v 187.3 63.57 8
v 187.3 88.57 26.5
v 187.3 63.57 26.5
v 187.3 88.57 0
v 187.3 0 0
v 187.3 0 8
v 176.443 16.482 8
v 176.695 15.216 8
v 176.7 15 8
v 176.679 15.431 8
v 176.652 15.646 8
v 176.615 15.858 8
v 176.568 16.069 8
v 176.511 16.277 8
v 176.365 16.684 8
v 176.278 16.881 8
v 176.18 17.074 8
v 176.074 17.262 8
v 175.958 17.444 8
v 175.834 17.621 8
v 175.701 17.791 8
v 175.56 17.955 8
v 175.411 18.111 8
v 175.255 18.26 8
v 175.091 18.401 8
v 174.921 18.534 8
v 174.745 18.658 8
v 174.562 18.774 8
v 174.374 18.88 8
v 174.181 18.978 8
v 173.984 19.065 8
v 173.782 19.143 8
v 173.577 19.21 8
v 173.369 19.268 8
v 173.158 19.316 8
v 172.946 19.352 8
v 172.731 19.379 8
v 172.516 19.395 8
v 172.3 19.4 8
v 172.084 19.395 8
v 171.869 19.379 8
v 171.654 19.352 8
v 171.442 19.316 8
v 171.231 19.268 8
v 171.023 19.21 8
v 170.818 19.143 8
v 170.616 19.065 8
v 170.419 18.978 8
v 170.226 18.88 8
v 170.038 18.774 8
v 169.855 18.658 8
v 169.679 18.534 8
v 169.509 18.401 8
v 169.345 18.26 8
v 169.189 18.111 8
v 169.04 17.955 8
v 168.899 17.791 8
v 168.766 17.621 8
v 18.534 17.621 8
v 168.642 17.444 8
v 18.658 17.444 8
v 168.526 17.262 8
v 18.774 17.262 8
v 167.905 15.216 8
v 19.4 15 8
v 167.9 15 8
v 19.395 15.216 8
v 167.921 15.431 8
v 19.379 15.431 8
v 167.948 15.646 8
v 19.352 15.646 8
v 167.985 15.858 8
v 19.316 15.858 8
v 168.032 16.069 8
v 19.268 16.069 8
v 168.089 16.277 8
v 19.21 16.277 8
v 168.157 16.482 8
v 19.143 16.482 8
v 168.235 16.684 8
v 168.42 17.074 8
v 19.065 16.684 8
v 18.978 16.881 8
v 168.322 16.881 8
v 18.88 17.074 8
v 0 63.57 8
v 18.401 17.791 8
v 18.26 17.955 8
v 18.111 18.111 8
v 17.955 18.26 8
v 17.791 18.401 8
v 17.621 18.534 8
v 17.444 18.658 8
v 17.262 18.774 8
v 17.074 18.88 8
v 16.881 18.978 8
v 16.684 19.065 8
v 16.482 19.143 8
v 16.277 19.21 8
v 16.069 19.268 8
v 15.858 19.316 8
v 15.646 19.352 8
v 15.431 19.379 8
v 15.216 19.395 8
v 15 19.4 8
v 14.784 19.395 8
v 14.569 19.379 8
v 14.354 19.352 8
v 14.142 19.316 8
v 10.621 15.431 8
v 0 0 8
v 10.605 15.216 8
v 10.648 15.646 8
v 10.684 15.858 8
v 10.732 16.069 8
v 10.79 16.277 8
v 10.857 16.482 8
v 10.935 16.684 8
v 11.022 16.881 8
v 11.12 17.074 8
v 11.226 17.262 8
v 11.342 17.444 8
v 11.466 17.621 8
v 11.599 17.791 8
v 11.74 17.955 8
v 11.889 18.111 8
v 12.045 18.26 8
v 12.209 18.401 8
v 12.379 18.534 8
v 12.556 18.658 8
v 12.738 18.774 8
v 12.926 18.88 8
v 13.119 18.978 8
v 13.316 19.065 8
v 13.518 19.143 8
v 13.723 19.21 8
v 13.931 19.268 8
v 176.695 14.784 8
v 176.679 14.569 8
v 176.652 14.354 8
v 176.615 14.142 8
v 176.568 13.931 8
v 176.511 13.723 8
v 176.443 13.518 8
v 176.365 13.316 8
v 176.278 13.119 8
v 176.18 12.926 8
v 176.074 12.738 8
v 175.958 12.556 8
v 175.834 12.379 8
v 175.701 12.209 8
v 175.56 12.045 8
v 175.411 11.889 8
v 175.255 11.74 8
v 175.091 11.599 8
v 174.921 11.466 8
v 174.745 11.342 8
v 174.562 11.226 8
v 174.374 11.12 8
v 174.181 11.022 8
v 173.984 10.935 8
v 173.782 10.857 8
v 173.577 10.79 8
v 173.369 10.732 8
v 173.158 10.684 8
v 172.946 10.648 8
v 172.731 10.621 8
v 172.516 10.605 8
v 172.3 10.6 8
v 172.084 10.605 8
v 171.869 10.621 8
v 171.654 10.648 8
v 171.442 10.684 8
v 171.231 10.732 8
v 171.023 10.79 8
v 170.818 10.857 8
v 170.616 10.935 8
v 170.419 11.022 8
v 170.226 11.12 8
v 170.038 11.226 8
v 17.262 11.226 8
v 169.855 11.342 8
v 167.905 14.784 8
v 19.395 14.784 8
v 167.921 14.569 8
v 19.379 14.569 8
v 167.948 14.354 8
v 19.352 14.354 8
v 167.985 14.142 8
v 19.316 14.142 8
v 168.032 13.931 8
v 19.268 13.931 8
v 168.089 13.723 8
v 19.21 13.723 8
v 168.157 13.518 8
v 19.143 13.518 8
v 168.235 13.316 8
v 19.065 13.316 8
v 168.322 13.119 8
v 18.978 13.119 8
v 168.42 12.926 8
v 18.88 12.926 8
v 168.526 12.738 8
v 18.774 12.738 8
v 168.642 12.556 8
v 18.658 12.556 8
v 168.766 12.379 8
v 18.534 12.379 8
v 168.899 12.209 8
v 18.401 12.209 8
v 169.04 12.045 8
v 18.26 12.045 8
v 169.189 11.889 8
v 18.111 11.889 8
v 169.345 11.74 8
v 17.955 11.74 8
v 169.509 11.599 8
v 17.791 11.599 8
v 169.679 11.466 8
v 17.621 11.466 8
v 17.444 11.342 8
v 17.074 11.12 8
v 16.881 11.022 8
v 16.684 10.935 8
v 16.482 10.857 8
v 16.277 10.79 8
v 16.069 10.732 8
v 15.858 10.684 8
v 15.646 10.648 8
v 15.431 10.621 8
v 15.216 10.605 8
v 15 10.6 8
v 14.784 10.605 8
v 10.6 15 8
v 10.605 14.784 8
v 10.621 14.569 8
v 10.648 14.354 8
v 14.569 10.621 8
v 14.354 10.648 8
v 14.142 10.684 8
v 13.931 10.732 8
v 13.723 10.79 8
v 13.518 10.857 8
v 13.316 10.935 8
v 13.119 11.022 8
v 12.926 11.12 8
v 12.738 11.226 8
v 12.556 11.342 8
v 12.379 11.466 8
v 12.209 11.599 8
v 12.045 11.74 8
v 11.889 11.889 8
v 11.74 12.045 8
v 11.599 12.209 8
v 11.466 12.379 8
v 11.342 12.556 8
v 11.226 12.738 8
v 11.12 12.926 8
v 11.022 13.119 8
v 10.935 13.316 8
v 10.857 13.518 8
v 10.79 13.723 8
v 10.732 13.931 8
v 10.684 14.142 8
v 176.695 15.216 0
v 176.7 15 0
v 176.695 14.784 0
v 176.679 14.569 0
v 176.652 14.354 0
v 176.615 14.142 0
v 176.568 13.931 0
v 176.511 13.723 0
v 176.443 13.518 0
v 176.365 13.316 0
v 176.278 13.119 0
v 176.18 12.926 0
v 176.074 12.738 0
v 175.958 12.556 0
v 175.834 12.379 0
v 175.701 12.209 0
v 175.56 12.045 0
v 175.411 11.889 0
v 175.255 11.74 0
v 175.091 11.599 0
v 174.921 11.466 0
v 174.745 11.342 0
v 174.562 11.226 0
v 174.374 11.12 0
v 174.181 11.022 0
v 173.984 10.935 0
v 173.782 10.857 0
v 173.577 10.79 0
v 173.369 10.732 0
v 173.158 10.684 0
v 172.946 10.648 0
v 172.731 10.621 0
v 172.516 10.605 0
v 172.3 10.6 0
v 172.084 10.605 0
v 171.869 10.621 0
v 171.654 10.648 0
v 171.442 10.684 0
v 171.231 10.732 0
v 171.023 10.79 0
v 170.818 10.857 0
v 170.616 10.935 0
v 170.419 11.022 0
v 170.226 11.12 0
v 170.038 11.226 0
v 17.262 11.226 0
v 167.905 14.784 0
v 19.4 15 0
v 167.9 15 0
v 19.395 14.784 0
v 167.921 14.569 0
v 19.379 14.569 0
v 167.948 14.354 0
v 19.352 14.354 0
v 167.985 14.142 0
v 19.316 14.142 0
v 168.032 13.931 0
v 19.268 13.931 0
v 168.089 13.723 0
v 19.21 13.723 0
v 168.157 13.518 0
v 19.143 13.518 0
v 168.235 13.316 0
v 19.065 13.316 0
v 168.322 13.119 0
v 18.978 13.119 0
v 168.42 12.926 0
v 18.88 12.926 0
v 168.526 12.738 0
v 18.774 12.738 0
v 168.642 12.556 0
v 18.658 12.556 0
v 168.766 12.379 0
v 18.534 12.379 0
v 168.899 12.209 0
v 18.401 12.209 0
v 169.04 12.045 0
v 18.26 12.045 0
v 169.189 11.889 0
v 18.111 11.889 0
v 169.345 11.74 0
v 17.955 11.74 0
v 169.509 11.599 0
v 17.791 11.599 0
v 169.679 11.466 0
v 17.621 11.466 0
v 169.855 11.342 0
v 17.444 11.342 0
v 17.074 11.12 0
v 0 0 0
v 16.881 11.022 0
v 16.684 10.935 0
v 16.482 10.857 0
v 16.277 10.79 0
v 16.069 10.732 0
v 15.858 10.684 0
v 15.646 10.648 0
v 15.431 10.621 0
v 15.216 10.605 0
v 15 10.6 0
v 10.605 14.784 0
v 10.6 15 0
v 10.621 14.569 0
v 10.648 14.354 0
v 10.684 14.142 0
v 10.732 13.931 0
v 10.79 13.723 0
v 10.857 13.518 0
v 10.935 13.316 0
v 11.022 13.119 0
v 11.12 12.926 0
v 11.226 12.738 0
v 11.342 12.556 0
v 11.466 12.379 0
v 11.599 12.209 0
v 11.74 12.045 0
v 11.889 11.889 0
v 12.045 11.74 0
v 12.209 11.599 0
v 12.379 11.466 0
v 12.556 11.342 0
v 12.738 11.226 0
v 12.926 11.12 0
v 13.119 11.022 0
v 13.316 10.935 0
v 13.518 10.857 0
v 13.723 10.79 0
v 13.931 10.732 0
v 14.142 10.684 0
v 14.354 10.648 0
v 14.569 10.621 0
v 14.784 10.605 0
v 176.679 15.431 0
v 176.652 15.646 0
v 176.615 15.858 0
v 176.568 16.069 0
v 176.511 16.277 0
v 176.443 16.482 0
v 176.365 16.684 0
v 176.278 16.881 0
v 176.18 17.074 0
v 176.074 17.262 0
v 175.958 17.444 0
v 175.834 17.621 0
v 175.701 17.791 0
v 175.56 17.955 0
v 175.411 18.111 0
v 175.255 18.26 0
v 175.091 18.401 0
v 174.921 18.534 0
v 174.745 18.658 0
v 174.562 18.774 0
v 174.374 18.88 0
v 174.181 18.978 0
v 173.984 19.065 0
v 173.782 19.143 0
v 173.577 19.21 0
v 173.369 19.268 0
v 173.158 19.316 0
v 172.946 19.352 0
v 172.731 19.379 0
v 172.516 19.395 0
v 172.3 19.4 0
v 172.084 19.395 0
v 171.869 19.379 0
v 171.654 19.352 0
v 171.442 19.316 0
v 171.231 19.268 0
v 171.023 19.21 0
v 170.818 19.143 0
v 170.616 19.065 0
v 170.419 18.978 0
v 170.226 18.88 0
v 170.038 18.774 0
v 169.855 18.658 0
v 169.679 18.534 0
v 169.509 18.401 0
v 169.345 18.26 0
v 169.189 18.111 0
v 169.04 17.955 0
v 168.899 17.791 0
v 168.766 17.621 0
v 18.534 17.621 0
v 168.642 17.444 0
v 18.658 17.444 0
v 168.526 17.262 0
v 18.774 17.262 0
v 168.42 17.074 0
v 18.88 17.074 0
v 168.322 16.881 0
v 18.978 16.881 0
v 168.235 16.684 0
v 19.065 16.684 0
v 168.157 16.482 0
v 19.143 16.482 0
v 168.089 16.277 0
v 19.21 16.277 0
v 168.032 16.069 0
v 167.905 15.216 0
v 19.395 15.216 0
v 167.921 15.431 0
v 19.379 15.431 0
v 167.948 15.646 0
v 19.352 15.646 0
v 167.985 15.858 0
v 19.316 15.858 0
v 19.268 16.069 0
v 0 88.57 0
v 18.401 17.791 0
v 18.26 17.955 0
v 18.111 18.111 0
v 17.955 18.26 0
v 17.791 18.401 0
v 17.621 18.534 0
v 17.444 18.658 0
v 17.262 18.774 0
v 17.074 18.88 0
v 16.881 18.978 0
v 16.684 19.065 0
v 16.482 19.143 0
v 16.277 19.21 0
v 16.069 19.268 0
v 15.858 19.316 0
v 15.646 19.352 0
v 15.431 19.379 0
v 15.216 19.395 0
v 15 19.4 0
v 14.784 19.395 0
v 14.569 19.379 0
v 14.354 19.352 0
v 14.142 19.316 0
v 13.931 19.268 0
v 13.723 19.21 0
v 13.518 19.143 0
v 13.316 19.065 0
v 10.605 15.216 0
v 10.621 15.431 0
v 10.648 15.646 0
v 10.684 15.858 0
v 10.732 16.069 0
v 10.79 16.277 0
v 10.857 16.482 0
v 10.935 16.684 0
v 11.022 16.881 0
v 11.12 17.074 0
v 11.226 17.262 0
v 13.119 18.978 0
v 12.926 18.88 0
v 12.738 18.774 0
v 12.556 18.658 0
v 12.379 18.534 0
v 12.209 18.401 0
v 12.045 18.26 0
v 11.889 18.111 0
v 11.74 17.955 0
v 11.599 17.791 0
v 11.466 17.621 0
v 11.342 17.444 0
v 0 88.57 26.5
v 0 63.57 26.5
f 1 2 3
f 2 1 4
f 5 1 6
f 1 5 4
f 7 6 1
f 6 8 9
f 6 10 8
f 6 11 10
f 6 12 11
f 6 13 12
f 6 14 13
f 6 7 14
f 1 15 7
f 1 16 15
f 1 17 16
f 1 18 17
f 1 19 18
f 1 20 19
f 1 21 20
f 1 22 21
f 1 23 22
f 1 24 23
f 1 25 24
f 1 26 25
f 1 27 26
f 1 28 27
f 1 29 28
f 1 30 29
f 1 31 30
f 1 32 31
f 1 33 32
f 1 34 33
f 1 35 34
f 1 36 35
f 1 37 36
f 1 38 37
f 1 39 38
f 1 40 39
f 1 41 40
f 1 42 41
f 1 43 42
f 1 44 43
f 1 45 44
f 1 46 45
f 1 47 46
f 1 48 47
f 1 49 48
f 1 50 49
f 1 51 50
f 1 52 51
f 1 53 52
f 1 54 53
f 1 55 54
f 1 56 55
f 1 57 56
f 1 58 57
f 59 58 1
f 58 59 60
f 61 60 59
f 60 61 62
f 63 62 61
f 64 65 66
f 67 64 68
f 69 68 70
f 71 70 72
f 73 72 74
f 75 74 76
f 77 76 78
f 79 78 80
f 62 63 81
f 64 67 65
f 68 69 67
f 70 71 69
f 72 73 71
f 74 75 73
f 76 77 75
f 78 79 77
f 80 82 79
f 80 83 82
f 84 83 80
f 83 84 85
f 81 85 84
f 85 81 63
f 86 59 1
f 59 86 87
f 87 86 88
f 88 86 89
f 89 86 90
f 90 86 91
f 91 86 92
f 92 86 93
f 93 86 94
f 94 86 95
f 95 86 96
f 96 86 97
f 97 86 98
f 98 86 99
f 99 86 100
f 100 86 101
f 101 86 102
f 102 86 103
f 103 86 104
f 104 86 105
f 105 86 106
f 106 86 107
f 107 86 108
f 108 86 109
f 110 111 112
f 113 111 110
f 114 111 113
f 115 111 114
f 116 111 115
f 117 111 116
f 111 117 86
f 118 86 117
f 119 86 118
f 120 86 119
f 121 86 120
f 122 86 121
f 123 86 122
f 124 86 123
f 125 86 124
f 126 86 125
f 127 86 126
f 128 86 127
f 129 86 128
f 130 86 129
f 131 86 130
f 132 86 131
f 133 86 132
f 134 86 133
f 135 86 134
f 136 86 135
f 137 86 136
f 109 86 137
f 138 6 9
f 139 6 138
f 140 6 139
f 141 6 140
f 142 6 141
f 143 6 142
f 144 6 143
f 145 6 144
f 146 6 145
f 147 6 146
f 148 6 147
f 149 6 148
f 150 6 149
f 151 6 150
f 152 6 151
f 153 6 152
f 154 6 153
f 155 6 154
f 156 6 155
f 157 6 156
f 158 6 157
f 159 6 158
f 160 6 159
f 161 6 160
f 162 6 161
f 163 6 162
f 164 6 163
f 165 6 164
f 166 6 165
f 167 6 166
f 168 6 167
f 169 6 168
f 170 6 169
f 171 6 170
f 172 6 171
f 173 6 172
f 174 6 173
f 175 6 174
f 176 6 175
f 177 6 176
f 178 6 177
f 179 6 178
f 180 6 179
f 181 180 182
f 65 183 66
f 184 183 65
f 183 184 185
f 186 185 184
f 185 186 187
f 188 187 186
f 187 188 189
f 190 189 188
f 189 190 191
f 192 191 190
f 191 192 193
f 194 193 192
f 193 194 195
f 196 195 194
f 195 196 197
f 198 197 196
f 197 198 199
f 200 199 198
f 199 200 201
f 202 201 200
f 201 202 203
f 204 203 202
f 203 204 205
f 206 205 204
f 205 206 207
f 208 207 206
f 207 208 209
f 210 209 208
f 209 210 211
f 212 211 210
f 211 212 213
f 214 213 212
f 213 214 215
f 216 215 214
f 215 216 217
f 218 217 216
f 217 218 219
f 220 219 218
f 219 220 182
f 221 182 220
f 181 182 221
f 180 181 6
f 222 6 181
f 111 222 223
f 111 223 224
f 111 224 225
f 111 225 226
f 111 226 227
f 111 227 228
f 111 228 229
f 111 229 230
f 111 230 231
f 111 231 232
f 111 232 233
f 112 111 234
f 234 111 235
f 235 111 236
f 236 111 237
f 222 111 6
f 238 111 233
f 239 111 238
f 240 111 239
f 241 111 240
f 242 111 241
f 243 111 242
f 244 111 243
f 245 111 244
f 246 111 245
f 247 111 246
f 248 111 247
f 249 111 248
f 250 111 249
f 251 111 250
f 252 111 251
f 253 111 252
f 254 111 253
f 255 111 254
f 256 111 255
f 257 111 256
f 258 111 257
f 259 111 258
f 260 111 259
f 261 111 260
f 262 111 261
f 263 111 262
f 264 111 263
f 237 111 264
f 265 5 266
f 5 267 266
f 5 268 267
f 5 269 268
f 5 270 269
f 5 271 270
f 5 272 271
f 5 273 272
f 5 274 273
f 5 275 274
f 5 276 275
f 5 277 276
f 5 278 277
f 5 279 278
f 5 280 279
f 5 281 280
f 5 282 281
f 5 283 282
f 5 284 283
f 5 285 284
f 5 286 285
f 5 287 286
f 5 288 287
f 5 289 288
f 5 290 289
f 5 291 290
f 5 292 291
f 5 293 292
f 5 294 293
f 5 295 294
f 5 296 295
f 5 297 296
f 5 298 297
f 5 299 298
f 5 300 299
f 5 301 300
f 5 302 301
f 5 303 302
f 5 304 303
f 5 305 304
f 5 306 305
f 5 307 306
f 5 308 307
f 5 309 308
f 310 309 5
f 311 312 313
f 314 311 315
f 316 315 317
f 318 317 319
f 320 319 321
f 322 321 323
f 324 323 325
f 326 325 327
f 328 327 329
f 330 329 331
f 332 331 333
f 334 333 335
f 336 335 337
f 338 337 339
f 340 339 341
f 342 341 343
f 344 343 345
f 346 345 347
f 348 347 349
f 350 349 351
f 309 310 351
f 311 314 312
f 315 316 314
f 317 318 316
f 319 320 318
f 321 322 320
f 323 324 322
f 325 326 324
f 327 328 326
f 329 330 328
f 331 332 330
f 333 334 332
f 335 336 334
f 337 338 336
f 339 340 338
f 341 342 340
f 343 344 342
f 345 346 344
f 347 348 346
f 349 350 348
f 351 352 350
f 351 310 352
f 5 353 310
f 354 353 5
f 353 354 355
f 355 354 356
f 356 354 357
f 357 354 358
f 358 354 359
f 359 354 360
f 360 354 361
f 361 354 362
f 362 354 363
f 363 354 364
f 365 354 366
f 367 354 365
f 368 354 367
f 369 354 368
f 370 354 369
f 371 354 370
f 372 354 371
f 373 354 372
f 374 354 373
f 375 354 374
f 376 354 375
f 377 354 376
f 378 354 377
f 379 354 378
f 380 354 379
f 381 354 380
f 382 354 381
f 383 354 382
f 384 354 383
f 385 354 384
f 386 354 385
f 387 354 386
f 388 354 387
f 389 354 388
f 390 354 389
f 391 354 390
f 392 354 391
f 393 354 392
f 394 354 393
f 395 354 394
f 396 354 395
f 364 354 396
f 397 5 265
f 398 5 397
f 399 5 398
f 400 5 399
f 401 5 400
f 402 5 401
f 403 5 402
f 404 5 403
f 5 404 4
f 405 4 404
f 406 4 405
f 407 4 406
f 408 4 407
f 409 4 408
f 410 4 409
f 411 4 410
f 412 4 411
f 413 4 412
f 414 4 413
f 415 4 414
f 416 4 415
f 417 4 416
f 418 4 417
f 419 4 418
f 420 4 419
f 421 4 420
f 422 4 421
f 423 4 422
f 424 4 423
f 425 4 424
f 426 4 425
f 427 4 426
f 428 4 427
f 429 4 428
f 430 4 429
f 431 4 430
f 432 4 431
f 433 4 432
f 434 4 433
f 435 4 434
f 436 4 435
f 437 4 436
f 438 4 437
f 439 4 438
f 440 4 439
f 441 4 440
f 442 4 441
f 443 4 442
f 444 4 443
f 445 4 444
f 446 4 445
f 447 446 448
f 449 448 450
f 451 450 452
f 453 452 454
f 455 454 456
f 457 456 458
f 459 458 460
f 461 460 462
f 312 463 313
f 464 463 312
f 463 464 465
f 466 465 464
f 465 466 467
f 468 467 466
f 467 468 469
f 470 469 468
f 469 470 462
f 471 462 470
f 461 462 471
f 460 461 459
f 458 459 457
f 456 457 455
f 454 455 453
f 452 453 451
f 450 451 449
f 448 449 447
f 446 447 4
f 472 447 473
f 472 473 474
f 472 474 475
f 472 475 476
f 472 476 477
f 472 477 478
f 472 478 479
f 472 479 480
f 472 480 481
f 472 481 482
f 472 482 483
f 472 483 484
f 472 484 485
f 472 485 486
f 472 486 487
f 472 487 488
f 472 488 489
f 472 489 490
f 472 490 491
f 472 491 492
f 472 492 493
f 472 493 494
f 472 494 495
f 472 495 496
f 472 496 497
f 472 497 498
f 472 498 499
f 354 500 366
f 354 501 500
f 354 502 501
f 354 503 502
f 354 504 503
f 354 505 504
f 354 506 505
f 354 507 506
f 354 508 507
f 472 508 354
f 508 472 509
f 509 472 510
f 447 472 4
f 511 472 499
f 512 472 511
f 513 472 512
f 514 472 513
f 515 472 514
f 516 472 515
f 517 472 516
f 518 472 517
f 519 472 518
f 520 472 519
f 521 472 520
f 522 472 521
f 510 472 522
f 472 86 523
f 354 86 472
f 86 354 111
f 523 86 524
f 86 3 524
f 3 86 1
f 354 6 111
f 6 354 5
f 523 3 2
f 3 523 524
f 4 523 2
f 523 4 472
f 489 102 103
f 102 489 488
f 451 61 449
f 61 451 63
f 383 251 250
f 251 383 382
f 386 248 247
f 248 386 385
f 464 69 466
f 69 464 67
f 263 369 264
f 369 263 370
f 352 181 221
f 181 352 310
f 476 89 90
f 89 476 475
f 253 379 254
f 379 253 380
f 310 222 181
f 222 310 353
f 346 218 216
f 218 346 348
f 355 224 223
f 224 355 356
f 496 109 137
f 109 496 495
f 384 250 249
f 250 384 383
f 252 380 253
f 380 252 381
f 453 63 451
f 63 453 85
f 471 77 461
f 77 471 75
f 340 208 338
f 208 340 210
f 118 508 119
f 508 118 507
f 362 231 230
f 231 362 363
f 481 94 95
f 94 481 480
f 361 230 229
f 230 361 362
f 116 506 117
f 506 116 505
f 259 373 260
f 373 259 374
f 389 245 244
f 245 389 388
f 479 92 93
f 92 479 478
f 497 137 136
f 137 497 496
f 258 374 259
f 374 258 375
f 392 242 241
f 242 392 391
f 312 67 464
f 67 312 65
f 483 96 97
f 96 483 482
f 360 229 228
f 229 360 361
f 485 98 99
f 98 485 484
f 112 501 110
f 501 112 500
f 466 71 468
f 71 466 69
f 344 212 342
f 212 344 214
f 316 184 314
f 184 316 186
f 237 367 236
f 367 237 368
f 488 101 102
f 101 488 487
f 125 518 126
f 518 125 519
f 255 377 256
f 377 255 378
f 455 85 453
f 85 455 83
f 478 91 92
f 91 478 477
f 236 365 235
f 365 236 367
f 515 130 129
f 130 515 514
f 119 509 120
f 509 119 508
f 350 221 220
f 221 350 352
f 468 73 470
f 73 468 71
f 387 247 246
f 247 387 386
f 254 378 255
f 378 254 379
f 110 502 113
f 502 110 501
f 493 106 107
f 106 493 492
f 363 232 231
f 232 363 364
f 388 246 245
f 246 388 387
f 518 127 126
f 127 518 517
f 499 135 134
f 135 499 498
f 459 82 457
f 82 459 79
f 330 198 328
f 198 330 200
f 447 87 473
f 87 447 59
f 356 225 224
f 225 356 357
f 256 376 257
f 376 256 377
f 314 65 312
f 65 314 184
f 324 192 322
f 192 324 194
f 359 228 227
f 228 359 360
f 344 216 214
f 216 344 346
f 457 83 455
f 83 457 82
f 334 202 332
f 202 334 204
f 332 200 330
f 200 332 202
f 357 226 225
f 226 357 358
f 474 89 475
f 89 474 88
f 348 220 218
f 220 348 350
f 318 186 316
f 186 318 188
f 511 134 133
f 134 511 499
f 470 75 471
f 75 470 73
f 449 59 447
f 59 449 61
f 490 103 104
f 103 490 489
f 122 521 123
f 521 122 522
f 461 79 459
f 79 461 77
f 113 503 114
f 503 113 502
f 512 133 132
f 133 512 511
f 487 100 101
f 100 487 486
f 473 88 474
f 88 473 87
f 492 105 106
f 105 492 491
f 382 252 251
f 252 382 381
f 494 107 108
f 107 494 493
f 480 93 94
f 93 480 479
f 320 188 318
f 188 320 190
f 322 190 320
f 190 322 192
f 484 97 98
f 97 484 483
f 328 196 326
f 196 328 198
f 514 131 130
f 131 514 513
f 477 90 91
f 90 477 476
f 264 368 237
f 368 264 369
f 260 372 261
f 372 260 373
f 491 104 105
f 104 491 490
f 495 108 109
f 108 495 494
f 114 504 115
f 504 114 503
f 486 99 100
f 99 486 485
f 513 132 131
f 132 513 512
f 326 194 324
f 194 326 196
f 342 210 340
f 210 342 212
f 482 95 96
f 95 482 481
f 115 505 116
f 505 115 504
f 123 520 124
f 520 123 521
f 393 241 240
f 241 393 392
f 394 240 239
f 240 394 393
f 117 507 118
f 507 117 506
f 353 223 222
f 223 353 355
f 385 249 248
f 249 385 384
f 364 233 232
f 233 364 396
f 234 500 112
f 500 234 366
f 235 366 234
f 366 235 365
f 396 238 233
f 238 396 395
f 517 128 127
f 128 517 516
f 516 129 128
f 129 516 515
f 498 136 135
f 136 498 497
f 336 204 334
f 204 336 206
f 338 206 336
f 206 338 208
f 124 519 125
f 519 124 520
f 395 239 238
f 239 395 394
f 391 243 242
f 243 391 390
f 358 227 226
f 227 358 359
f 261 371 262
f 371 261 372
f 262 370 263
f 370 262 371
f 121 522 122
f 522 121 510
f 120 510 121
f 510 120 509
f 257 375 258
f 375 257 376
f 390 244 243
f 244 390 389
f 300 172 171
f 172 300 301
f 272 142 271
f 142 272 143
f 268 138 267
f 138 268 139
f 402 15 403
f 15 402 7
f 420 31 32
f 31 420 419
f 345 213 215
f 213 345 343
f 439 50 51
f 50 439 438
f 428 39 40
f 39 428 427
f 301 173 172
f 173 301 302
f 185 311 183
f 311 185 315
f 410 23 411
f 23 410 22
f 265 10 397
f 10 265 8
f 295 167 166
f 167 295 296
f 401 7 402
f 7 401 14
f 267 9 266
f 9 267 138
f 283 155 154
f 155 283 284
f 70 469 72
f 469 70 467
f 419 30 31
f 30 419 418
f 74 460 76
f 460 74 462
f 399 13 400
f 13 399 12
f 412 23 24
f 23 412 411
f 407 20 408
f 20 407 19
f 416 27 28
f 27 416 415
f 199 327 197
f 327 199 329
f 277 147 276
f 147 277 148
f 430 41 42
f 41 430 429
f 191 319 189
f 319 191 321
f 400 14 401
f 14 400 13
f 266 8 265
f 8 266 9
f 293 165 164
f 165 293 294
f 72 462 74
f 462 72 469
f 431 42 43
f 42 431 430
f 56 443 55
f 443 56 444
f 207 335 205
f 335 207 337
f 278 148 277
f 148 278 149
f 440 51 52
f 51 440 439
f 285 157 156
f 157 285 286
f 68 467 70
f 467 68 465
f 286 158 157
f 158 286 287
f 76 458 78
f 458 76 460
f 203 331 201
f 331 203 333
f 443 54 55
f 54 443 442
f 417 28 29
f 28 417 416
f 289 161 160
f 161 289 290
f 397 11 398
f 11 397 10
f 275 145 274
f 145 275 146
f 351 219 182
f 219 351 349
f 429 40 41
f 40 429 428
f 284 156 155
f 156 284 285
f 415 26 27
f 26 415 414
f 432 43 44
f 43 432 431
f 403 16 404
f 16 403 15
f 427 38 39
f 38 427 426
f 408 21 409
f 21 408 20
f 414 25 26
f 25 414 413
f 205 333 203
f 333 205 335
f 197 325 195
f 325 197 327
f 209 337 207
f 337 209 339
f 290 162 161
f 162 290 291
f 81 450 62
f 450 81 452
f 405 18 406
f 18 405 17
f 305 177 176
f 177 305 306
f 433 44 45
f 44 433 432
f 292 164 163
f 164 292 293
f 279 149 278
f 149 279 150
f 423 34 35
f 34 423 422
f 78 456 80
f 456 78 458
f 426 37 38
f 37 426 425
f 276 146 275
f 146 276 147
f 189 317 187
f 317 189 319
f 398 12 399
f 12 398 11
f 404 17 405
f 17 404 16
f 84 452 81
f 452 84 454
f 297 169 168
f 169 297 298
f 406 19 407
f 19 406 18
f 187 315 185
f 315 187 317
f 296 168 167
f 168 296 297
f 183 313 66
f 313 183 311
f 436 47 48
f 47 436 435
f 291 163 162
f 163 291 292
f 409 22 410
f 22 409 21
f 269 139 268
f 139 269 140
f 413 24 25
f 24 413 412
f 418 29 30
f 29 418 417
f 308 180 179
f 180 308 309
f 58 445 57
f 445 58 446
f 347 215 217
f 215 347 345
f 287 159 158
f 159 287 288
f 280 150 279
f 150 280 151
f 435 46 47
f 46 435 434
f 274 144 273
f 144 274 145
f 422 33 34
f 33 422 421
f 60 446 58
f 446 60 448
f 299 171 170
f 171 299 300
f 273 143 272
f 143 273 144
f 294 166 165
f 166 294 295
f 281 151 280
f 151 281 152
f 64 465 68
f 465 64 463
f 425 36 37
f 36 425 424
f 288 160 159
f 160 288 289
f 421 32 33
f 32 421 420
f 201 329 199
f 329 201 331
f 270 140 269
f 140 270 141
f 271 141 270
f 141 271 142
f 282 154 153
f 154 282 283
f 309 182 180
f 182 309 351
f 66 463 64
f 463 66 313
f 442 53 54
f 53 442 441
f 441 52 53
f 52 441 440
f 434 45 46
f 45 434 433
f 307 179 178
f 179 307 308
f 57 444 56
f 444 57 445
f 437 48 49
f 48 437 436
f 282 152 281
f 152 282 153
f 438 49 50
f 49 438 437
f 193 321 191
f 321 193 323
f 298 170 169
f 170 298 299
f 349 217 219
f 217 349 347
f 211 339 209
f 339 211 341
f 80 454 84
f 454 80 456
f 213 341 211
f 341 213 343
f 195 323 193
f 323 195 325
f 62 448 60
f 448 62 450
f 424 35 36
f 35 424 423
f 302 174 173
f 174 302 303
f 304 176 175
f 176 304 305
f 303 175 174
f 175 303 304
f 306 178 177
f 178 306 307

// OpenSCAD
$fn=128;

// V70 clamp v2 prototype: full-width stepped clamp.
// X = width, Y = installed height, Z = depth toward box.
//
// Height chain:
// clamp bottom -> screw axis          = 15.00 mm
// screw axis -> box underside        = 15.00 mm
// box underside -> top of protrusion = 33.57 mm
// extra press height above protrusion= 25.00 mm
// total                              = 88.57 mm
//
// Measured press-plane offset between protrusion and wall above ≈ 18.50 mm.

w = 187.30;
lower_h = 63.57;
upper_h = 25.00;
lower_t = 8.00;
upper_front = 26.50; // 8.0 + 18.5
hole_d = 8.80;
spindle_x = [15.00,172.30];
spindle_y = 15.00;

difference() {
    union() {
        cube([w,lower_h,lower_t]);
        translate([0,lower_h,0])
            cube([w,upper_h,upper_front]);
    }

    for(x=spindle_x)
        translate([x,spindle_y,-0.5])
            cylinder(d=hole_d,h=lower_t+1.0);
}
